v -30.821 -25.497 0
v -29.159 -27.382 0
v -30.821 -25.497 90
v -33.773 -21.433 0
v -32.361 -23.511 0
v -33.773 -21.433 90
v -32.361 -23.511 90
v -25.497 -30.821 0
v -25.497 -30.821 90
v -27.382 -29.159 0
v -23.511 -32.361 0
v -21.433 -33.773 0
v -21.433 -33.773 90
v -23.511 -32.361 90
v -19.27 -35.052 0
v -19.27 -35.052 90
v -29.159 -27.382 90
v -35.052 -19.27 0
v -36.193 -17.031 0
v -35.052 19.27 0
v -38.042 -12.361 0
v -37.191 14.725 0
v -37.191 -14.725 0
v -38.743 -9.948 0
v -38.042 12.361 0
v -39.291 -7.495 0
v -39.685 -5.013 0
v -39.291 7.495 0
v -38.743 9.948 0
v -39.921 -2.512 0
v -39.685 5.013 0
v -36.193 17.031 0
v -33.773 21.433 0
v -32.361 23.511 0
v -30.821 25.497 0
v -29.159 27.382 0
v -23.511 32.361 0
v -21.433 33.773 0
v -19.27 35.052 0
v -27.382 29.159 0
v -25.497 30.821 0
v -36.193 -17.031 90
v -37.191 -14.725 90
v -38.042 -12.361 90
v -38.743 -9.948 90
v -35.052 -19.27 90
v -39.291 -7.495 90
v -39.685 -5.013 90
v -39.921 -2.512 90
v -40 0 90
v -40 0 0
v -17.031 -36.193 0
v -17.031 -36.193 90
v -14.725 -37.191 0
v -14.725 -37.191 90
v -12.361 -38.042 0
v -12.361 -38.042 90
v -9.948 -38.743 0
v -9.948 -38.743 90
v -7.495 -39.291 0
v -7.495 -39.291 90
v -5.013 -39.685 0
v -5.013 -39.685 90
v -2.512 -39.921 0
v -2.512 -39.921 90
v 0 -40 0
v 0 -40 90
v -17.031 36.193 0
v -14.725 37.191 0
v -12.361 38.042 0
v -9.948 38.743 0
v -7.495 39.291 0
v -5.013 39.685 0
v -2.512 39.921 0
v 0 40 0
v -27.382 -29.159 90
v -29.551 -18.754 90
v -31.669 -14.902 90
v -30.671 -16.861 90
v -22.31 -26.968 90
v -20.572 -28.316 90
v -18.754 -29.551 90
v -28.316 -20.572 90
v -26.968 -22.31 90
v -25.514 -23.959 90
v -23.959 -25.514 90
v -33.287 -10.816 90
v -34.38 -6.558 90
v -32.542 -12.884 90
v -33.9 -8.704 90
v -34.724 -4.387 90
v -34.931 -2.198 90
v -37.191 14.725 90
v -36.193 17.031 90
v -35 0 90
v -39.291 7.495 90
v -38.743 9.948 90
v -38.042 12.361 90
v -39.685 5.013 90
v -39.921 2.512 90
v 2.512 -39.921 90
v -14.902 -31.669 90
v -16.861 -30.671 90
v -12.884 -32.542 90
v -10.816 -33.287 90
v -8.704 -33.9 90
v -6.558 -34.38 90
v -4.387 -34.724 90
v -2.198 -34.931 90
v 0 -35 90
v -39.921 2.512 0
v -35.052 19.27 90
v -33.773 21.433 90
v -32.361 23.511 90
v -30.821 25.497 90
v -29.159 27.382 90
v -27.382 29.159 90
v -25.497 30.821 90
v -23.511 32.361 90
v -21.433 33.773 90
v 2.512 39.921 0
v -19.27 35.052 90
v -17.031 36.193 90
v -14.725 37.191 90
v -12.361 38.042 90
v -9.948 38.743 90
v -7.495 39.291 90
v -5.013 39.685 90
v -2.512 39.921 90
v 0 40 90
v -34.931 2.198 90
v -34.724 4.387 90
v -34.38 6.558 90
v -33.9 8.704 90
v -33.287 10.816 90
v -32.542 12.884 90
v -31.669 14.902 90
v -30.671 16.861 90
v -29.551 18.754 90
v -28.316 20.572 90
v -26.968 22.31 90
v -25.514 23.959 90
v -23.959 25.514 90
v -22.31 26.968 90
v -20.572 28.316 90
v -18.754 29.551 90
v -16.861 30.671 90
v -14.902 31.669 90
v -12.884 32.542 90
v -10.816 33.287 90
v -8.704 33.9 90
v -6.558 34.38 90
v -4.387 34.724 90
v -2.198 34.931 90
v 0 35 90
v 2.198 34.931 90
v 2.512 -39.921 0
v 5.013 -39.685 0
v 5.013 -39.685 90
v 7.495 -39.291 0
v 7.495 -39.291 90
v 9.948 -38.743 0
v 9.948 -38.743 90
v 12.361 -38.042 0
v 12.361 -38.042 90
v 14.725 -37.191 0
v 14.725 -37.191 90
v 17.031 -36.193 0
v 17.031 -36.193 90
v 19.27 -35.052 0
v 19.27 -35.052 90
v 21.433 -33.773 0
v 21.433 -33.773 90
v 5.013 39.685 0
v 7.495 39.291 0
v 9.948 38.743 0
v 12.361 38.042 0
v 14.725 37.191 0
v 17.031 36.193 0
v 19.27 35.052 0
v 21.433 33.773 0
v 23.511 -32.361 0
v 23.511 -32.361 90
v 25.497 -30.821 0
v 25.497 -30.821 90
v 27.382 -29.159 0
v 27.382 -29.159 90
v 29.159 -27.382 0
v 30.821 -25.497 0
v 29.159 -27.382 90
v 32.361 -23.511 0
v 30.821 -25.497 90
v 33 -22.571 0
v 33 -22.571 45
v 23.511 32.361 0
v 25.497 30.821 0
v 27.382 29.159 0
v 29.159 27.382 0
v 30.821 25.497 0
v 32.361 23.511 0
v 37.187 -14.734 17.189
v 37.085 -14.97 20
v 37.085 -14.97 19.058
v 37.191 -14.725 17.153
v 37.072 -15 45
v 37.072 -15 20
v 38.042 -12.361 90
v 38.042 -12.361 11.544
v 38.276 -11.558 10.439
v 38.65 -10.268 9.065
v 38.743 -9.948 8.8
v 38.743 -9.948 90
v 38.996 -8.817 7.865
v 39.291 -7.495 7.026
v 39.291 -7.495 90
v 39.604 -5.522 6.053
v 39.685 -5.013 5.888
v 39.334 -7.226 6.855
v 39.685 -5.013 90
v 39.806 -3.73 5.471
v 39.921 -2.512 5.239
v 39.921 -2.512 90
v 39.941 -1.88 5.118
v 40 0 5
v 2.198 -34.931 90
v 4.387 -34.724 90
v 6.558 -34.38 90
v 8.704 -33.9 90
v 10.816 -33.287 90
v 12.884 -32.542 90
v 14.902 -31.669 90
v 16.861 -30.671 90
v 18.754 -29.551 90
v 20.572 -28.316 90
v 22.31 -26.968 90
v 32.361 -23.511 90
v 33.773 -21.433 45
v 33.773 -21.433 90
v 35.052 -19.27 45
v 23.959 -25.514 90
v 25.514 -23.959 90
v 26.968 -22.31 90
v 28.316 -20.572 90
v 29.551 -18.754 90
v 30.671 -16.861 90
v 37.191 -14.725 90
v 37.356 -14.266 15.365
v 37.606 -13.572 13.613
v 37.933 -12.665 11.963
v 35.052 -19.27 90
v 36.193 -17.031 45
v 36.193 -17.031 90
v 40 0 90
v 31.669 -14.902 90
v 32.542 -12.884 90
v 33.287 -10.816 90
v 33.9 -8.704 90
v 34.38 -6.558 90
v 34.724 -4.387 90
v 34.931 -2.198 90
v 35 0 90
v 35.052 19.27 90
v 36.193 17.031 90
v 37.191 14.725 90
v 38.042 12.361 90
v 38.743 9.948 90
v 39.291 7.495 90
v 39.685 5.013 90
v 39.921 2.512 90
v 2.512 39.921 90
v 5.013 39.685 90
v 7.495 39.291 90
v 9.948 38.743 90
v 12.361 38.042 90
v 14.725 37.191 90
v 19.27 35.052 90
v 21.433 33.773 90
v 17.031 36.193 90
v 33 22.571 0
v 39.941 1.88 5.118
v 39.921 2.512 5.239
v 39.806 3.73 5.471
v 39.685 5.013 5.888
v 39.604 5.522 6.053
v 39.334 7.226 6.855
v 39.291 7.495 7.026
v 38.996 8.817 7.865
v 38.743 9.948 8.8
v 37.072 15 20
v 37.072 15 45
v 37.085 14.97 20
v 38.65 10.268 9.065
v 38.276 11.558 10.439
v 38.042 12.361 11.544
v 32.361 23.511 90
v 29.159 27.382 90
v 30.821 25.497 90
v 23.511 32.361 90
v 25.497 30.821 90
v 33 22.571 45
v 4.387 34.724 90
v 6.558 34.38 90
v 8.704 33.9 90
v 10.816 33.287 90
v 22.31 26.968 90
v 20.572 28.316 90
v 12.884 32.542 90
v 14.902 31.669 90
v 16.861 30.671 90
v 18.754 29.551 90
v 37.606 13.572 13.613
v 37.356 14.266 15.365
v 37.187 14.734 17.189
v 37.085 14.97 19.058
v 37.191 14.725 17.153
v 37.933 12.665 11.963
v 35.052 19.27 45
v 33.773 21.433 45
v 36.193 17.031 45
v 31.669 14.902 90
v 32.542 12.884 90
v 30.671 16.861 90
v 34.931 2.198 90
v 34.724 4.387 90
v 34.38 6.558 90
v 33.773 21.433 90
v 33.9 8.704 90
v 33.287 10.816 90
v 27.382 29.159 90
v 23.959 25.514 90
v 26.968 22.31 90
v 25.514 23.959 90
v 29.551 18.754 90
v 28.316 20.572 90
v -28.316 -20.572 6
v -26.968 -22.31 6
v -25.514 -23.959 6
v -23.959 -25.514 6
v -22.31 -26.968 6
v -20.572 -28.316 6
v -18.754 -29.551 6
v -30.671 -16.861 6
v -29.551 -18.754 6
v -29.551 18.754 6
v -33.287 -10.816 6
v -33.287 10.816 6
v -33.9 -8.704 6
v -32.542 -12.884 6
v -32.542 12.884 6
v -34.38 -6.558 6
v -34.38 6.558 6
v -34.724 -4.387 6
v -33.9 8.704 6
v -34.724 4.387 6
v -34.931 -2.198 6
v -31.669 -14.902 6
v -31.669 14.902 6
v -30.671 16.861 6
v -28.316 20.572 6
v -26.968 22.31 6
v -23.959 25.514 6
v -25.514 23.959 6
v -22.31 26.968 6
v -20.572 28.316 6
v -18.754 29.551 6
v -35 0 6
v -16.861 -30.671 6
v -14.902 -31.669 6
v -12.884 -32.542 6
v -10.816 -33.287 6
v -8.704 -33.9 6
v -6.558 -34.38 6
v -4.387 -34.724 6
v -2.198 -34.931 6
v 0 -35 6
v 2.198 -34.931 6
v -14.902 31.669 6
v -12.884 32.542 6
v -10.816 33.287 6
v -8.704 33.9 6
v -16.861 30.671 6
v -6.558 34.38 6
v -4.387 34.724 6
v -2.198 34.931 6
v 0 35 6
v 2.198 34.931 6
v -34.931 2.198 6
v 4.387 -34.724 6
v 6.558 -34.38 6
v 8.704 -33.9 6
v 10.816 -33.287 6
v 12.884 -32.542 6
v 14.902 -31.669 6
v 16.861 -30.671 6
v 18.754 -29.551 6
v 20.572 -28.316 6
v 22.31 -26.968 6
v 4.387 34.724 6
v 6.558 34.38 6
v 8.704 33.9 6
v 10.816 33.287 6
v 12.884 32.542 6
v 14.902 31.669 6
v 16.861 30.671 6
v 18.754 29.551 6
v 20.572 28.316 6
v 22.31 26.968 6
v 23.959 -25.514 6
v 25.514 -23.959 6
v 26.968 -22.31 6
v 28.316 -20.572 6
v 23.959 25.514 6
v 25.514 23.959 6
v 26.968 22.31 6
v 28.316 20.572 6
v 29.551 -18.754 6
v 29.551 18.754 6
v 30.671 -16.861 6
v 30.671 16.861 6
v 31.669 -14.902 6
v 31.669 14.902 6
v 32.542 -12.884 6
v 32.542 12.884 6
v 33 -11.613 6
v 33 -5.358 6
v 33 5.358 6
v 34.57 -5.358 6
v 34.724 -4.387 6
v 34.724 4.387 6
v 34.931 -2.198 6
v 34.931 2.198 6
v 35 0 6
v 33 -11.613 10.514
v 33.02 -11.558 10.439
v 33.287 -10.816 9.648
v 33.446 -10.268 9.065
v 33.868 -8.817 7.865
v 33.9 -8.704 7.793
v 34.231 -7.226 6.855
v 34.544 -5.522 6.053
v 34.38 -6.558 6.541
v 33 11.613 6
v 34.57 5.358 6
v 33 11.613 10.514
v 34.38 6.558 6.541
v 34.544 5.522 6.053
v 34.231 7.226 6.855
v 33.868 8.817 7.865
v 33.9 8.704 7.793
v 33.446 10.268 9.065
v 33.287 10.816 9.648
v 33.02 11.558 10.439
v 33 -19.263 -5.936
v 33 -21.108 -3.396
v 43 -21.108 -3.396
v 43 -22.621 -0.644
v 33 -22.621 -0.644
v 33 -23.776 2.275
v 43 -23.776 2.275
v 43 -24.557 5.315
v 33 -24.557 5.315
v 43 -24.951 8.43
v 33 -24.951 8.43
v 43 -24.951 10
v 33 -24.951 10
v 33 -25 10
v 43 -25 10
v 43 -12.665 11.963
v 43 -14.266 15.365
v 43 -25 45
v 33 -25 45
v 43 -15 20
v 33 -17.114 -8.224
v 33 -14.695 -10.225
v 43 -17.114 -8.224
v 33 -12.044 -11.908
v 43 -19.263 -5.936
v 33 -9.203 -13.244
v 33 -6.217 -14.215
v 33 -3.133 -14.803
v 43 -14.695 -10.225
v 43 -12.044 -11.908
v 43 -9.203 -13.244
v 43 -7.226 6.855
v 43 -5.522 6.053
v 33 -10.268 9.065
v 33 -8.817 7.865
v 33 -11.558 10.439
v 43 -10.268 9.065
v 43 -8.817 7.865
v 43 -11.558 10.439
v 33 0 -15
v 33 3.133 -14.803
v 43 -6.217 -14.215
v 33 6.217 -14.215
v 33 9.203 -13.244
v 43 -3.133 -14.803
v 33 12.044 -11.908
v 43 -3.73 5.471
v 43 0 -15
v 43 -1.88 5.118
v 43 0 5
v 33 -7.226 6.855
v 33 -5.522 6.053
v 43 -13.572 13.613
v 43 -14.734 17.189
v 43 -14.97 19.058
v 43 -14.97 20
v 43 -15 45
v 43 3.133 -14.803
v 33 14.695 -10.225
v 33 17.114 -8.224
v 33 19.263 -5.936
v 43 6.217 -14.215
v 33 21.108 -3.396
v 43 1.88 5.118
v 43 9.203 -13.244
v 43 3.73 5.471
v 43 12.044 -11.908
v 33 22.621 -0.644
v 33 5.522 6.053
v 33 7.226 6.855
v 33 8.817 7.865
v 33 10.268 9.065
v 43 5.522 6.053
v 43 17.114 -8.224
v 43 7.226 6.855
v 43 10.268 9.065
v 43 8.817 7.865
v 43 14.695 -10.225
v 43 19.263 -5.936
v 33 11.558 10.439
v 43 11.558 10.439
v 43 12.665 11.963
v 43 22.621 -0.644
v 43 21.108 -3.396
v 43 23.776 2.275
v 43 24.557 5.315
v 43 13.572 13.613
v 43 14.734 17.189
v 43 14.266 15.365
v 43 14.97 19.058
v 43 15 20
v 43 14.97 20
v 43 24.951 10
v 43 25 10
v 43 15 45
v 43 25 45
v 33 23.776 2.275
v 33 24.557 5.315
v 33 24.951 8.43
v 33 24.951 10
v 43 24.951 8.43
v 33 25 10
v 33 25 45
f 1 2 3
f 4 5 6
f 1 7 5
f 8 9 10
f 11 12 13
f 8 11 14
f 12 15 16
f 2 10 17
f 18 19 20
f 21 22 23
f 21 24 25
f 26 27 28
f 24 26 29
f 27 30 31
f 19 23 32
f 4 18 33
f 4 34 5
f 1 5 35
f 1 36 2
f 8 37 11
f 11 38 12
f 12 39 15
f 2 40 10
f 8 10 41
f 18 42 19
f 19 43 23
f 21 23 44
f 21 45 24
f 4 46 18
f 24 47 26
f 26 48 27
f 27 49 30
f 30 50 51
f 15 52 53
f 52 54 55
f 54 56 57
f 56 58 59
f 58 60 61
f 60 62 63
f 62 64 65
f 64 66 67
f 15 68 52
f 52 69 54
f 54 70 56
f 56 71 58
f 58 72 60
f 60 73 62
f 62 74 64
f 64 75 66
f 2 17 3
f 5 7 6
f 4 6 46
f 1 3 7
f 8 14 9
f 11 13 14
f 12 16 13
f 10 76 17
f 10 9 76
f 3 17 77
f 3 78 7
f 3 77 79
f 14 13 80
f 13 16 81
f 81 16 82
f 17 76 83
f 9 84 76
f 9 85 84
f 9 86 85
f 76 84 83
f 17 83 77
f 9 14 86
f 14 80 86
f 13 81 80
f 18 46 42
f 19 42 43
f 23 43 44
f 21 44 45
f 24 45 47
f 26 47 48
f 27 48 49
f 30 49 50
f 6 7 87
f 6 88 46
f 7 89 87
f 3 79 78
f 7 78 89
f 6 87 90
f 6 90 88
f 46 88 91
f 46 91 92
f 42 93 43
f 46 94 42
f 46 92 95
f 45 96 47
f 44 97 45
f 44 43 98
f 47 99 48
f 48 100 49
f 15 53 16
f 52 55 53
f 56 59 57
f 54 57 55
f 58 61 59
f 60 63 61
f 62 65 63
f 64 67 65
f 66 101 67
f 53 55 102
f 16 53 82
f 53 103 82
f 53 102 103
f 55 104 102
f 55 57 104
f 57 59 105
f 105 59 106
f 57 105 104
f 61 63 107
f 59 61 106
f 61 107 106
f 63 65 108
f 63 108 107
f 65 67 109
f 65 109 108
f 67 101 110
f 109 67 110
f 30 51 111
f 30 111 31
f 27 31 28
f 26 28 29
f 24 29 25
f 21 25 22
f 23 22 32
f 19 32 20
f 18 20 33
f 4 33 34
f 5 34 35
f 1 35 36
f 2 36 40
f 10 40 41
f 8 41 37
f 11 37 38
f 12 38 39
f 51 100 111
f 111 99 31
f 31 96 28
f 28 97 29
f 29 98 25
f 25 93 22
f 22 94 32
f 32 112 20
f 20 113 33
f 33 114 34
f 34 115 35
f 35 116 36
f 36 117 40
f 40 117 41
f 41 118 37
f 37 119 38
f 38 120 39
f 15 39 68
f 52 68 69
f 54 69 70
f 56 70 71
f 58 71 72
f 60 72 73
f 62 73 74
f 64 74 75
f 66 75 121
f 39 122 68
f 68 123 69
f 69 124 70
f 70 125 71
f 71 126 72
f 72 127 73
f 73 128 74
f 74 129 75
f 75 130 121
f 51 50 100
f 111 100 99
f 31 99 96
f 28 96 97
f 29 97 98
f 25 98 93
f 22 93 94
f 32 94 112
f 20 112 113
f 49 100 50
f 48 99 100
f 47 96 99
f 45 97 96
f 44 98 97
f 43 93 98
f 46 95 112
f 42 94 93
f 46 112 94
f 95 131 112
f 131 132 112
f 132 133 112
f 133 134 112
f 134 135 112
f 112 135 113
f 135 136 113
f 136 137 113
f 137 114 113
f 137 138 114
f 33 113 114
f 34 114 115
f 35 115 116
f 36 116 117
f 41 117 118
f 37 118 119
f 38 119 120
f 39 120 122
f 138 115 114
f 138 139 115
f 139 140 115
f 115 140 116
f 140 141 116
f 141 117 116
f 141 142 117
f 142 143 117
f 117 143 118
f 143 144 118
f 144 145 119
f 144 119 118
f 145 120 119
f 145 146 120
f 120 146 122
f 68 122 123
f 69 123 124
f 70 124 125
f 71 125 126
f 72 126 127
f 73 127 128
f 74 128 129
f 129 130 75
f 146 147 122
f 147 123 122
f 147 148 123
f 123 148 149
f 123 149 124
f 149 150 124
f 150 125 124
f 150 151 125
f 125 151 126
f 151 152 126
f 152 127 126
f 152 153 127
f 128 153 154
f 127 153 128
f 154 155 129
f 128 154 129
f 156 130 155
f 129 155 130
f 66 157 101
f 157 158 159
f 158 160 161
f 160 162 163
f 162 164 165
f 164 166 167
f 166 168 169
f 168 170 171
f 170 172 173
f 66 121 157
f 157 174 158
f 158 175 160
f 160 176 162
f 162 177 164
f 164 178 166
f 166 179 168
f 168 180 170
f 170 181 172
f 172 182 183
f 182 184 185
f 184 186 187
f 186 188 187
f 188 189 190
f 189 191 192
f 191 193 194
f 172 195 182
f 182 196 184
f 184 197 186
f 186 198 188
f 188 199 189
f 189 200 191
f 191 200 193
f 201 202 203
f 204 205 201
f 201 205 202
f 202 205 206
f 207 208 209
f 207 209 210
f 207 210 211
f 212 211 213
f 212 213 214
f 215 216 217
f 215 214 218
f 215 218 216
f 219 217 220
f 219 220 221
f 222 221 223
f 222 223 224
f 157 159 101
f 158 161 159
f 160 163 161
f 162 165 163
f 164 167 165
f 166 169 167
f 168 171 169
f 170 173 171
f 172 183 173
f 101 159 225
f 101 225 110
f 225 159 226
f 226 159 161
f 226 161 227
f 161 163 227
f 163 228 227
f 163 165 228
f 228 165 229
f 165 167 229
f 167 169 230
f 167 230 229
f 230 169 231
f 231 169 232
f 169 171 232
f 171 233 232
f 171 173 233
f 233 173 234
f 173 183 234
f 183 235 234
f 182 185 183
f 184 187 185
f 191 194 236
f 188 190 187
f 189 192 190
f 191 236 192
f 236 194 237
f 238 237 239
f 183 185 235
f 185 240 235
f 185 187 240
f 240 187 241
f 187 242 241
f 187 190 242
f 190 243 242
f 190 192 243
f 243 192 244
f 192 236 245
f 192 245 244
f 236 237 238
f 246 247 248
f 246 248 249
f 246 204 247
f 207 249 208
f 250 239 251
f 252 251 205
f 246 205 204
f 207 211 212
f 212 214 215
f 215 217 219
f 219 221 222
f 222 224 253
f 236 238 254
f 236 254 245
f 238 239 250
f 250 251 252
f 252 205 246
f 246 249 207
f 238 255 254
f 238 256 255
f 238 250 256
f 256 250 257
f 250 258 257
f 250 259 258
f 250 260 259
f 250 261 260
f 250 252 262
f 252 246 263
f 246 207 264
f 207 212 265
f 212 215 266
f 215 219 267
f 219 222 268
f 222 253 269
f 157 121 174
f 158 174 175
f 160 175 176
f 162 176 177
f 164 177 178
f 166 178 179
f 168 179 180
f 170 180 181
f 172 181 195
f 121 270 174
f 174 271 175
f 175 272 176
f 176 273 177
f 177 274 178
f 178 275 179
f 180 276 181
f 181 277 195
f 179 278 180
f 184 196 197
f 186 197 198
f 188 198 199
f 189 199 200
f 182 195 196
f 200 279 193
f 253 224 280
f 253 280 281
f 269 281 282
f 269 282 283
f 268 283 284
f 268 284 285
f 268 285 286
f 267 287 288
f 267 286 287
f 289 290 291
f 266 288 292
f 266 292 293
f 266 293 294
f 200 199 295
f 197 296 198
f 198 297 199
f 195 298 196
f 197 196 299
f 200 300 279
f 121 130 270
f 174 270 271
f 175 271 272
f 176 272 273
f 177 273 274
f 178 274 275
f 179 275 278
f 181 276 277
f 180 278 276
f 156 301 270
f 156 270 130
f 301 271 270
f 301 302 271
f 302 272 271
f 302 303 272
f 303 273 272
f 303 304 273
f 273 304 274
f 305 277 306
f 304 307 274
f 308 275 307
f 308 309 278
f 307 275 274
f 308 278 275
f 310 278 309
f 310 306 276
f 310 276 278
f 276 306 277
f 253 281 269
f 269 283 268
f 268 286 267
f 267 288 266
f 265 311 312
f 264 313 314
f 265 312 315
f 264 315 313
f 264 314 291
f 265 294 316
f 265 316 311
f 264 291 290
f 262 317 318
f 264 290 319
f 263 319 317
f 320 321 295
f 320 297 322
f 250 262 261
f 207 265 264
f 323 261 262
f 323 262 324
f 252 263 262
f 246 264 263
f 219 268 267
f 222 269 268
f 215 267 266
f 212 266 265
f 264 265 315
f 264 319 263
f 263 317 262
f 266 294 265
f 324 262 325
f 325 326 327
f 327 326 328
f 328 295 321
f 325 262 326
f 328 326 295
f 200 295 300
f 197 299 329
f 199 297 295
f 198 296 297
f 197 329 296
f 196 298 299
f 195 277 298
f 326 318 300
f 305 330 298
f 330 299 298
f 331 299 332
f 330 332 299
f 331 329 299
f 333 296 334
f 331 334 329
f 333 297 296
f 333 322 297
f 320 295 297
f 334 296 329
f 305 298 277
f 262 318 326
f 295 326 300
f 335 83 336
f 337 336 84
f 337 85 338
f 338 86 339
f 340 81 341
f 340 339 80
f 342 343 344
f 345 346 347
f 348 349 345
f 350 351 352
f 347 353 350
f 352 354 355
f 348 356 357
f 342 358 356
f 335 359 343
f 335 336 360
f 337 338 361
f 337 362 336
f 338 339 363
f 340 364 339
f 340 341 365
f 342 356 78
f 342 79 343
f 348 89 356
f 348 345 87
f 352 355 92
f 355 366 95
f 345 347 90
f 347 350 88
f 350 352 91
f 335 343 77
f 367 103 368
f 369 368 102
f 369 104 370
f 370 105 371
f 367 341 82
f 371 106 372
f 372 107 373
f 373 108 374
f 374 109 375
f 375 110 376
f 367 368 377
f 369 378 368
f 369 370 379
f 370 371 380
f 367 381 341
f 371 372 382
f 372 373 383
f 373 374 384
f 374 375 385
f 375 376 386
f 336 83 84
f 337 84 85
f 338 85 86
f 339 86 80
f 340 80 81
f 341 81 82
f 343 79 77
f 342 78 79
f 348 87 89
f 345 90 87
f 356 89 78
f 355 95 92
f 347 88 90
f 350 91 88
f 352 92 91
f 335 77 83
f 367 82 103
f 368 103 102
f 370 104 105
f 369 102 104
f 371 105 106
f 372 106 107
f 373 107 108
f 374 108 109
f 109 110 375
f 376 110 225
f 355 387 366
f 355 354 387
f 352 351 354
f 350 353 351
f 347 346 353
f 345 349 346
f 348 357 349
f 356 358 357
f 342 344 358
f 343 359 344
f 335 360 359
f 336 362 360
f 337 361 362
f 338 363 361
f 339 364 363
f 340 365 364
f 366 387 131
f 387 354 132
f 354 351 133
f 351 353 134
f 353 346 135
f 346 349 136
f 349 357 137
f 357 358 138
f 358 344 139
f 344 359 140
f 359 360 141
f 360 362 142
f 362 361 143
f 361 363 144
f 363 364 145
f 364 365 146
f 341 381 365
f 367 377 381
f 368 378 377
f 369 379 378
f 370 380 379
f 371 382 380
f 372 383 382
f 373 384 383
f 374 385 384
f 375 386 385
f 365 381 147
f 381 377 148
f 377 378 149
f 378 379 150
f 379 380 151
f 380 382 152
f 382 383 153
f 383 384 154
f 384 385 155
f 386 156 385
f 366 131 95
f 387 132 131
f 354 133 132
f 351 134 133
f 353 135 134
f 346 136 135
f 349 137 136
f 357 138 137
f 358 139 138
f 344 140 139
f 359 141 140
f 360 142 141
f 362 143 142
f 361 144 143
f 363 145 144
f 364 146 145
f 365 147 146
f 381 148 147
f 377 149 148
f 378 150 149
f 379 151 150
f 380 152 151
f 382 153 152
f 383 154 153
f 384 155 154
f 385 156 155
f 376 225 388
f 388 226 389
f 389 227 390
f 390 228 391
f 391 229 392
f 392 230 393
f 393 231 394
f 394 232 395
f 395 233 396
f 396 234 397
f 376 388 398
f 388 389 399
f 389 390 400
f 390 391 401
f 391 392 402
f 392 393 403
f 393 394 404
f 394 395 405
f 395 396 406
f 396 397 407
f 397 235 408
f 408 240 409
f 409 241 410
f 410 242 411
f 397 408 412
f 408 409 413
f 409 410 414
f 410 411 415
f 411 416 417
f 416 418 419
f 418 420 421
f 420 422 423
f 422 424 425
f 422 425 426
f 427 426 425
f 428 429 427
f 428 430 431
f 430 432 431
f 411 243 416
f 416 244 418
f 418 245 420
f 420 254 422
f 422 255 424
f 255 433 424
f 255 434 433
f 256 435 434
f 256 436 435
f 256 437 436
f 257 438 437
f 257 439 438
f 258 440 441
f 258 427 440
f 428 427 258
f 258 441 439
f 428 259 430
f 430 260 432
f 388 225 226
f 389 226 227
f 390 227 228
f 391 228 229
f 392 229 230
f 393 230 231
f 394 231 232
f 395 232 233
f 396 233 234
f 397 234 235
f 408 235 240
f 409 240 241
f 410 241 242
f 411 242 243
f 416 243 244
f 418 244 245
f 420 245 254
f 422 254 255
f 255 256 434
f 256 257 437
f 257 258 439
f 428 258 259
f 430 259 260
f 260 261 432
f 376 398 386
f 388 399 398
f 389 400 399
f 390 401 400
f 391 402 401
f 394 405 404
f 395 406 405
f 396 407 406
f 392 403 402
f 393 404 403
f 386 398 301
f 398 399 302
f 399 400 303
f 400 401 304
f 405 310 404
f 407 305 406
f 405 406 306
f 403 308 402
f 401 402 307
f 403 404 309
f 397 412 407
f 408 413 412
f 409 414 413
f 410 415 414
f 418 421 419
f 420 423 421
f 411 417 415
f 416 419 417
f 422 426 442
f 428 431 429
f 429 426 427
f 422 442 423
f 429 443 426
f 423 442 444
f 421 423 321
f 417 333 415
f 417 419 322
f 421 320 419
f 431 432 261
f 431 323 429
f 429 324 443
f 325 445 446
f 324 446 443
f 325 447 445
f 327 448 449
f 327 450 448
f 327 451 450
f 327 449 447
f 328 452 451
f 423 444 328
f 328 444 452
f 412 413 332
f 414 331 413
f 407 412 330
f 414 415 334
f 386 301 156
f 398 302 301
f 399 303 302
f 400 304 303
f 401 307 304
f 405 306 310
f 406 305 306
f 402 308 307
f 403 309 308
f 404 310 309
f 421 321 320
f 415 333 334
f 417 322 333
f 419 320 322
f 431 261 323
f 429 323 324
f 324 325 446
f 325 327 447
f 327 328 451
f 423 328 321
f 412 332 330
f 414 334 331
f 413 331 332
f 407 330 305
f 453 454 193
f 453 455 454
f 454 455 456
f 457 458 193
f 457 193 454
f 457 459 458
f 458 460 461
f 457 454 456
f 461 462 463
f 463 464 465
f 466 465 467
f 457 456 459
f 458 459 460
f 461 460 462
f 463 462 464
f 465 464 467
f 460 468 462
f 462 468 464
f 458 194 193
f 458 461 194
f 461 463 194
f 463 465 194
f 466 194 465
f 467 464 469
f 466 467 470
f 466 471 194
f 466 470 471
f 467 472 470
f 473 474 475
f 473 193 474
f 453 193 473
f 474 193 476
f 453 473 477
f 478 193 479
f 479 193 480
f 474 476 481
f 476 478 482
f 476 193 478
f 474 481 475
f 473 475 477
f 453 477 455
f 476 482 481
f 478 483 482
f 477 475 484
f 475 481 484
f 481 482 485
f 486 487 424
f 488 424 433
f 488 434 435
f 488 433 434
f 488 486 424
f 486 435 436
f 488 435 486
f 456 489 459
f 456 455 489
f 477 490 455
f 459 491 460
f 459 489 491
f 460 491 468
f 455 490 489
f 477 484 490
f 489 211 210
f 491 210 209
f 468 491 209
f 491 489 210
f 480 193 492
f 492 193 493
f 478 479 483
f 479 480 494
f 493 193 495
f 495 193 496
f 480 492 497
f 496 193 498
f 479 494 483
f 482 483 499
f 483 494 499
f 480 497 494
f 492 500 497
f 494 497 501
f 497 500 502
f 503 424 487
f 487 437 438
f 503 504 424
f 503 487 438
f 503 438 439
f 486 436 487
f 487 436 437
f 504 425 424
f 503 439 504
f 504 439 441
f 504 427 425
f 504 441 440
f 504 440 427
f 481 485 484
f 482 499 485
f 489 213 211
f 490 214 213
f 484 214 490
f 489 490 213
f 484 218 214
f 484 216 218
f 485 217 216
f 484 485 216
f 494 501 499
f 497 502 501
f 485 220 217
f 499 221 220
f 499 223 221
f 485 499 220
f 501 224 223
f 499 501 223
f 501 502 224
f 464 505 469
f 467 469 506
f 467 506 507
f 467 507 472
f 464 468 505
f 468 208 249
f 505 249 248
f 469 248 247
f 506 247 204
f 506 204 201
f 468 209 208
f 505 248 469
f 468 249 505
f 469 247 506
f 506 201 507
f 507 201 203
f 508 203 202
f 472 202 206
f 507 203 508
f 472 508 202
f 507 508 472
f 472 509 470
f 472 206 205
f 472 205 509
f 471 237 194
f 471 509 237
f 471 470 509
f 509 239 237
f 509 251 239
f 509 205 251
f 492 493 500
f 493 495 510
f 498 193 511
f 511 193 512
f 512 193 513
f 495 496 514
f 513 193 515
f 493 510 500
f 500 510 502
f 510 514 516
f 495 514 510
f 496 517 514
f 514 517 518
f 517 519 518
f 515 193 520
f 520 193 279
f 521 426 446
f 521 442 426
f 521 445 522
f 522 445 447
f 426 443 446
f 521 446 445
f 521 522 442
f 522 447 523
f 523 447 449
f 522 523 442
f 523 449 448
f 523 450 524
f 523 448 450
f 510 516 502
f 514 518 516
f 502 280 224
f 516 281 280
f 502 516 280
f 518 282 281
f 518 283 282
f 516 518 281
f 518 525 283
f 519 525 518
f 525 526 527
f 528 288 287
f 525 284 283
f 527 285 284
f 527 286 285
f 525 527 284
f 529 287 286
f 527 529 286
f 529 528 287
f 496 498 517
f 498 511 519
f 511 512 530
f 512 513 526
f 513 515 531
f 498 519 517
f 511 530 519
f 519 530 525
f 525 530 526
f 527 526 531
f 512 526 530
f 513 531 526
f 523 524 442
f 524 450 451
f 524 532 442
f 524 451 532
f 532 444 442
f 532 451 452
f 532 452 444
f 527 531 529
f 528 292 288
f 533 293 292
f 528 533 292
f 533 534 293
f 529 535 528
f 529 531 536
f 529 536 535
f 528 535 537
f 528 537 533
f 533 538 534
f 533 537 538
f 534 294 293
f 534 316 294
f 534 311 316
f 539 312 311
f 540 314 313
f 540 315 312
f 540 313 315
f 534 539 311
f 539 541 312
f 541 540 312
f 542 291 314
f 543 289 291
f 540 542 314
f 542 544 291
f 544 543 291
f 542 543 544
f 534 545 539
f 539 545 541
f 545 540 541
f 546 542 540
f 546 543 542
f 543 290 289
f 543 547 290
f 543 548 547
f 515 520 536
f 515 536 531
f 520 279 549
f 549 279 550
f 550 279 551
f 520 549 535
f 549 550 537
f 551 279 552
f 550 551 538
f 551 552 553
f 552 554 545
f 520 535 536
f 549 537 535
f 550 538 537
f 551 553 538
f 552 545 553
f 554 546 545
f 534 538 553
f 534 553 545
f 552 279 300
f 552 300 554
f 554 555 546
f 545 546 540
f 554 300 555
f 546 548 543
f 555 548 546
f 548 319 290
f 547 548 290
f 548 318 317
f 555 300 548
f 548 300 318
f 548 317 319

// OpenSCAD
// マグカップのパラメータ
outer_d = 80;
inner_d = 70;
height = 90;
bottom_thickness = 6;

// 取手のパラメータ
handle_inner_h = 30; // 内側の高さ
handle_inner_w = 25; // 内側の幅（張り出し）
handle_thickness = 10; // 取手自体の肉厚

module mug() {
    union() {
        // マグ本体
        difference() {
            cylinder(d = outer_d, h = height, $fn = 100);
            translate([0, 0, bottom_thickness])
                cylinder(d = inner_d, h = height - bottom_thickness + 0.1, $fn = 100);
        }

        // 取手 (+X軸方向)
        // 本体外径に確実に接合させるため、わずかに本体へめり込ませる
        translate([outer_d / 2 - 2, 0, height / 2]) {
            rotate([0, 90, 0]) {
                linear_extrude(handle_thickness, center = true) {
                    // D字形状：本体側が直線、外側が半円
                    // 内側の空間：高さ 30mm × 幅 25mm
                    difference() {
                        // 外形
                        union() {
                            translate([0, -handle_inner_h / 2 - handle_thickness]) 
                                square([handle_inner_w + handle_thickness, handle_inner_h + handle_thickness * 2]);
                            translate([handle_inner_w + handle_thickness, 0]) 
                                circle(d = handle_inner_h + handle_thickness * 2, $fn = 50);
                        }
                        // 空間 (D字の穴)
                        union() {
                            translate([0, -handle_inner_h / 2]) 
                                square([handle_inner_w, handle_inner_h]);
                            translate([handle_inner_w, 0]) 
                                circle(d = handle_inner_h, $fn = 50);
                        }
                    }
                }
            }
        }
    }
}

mug();
